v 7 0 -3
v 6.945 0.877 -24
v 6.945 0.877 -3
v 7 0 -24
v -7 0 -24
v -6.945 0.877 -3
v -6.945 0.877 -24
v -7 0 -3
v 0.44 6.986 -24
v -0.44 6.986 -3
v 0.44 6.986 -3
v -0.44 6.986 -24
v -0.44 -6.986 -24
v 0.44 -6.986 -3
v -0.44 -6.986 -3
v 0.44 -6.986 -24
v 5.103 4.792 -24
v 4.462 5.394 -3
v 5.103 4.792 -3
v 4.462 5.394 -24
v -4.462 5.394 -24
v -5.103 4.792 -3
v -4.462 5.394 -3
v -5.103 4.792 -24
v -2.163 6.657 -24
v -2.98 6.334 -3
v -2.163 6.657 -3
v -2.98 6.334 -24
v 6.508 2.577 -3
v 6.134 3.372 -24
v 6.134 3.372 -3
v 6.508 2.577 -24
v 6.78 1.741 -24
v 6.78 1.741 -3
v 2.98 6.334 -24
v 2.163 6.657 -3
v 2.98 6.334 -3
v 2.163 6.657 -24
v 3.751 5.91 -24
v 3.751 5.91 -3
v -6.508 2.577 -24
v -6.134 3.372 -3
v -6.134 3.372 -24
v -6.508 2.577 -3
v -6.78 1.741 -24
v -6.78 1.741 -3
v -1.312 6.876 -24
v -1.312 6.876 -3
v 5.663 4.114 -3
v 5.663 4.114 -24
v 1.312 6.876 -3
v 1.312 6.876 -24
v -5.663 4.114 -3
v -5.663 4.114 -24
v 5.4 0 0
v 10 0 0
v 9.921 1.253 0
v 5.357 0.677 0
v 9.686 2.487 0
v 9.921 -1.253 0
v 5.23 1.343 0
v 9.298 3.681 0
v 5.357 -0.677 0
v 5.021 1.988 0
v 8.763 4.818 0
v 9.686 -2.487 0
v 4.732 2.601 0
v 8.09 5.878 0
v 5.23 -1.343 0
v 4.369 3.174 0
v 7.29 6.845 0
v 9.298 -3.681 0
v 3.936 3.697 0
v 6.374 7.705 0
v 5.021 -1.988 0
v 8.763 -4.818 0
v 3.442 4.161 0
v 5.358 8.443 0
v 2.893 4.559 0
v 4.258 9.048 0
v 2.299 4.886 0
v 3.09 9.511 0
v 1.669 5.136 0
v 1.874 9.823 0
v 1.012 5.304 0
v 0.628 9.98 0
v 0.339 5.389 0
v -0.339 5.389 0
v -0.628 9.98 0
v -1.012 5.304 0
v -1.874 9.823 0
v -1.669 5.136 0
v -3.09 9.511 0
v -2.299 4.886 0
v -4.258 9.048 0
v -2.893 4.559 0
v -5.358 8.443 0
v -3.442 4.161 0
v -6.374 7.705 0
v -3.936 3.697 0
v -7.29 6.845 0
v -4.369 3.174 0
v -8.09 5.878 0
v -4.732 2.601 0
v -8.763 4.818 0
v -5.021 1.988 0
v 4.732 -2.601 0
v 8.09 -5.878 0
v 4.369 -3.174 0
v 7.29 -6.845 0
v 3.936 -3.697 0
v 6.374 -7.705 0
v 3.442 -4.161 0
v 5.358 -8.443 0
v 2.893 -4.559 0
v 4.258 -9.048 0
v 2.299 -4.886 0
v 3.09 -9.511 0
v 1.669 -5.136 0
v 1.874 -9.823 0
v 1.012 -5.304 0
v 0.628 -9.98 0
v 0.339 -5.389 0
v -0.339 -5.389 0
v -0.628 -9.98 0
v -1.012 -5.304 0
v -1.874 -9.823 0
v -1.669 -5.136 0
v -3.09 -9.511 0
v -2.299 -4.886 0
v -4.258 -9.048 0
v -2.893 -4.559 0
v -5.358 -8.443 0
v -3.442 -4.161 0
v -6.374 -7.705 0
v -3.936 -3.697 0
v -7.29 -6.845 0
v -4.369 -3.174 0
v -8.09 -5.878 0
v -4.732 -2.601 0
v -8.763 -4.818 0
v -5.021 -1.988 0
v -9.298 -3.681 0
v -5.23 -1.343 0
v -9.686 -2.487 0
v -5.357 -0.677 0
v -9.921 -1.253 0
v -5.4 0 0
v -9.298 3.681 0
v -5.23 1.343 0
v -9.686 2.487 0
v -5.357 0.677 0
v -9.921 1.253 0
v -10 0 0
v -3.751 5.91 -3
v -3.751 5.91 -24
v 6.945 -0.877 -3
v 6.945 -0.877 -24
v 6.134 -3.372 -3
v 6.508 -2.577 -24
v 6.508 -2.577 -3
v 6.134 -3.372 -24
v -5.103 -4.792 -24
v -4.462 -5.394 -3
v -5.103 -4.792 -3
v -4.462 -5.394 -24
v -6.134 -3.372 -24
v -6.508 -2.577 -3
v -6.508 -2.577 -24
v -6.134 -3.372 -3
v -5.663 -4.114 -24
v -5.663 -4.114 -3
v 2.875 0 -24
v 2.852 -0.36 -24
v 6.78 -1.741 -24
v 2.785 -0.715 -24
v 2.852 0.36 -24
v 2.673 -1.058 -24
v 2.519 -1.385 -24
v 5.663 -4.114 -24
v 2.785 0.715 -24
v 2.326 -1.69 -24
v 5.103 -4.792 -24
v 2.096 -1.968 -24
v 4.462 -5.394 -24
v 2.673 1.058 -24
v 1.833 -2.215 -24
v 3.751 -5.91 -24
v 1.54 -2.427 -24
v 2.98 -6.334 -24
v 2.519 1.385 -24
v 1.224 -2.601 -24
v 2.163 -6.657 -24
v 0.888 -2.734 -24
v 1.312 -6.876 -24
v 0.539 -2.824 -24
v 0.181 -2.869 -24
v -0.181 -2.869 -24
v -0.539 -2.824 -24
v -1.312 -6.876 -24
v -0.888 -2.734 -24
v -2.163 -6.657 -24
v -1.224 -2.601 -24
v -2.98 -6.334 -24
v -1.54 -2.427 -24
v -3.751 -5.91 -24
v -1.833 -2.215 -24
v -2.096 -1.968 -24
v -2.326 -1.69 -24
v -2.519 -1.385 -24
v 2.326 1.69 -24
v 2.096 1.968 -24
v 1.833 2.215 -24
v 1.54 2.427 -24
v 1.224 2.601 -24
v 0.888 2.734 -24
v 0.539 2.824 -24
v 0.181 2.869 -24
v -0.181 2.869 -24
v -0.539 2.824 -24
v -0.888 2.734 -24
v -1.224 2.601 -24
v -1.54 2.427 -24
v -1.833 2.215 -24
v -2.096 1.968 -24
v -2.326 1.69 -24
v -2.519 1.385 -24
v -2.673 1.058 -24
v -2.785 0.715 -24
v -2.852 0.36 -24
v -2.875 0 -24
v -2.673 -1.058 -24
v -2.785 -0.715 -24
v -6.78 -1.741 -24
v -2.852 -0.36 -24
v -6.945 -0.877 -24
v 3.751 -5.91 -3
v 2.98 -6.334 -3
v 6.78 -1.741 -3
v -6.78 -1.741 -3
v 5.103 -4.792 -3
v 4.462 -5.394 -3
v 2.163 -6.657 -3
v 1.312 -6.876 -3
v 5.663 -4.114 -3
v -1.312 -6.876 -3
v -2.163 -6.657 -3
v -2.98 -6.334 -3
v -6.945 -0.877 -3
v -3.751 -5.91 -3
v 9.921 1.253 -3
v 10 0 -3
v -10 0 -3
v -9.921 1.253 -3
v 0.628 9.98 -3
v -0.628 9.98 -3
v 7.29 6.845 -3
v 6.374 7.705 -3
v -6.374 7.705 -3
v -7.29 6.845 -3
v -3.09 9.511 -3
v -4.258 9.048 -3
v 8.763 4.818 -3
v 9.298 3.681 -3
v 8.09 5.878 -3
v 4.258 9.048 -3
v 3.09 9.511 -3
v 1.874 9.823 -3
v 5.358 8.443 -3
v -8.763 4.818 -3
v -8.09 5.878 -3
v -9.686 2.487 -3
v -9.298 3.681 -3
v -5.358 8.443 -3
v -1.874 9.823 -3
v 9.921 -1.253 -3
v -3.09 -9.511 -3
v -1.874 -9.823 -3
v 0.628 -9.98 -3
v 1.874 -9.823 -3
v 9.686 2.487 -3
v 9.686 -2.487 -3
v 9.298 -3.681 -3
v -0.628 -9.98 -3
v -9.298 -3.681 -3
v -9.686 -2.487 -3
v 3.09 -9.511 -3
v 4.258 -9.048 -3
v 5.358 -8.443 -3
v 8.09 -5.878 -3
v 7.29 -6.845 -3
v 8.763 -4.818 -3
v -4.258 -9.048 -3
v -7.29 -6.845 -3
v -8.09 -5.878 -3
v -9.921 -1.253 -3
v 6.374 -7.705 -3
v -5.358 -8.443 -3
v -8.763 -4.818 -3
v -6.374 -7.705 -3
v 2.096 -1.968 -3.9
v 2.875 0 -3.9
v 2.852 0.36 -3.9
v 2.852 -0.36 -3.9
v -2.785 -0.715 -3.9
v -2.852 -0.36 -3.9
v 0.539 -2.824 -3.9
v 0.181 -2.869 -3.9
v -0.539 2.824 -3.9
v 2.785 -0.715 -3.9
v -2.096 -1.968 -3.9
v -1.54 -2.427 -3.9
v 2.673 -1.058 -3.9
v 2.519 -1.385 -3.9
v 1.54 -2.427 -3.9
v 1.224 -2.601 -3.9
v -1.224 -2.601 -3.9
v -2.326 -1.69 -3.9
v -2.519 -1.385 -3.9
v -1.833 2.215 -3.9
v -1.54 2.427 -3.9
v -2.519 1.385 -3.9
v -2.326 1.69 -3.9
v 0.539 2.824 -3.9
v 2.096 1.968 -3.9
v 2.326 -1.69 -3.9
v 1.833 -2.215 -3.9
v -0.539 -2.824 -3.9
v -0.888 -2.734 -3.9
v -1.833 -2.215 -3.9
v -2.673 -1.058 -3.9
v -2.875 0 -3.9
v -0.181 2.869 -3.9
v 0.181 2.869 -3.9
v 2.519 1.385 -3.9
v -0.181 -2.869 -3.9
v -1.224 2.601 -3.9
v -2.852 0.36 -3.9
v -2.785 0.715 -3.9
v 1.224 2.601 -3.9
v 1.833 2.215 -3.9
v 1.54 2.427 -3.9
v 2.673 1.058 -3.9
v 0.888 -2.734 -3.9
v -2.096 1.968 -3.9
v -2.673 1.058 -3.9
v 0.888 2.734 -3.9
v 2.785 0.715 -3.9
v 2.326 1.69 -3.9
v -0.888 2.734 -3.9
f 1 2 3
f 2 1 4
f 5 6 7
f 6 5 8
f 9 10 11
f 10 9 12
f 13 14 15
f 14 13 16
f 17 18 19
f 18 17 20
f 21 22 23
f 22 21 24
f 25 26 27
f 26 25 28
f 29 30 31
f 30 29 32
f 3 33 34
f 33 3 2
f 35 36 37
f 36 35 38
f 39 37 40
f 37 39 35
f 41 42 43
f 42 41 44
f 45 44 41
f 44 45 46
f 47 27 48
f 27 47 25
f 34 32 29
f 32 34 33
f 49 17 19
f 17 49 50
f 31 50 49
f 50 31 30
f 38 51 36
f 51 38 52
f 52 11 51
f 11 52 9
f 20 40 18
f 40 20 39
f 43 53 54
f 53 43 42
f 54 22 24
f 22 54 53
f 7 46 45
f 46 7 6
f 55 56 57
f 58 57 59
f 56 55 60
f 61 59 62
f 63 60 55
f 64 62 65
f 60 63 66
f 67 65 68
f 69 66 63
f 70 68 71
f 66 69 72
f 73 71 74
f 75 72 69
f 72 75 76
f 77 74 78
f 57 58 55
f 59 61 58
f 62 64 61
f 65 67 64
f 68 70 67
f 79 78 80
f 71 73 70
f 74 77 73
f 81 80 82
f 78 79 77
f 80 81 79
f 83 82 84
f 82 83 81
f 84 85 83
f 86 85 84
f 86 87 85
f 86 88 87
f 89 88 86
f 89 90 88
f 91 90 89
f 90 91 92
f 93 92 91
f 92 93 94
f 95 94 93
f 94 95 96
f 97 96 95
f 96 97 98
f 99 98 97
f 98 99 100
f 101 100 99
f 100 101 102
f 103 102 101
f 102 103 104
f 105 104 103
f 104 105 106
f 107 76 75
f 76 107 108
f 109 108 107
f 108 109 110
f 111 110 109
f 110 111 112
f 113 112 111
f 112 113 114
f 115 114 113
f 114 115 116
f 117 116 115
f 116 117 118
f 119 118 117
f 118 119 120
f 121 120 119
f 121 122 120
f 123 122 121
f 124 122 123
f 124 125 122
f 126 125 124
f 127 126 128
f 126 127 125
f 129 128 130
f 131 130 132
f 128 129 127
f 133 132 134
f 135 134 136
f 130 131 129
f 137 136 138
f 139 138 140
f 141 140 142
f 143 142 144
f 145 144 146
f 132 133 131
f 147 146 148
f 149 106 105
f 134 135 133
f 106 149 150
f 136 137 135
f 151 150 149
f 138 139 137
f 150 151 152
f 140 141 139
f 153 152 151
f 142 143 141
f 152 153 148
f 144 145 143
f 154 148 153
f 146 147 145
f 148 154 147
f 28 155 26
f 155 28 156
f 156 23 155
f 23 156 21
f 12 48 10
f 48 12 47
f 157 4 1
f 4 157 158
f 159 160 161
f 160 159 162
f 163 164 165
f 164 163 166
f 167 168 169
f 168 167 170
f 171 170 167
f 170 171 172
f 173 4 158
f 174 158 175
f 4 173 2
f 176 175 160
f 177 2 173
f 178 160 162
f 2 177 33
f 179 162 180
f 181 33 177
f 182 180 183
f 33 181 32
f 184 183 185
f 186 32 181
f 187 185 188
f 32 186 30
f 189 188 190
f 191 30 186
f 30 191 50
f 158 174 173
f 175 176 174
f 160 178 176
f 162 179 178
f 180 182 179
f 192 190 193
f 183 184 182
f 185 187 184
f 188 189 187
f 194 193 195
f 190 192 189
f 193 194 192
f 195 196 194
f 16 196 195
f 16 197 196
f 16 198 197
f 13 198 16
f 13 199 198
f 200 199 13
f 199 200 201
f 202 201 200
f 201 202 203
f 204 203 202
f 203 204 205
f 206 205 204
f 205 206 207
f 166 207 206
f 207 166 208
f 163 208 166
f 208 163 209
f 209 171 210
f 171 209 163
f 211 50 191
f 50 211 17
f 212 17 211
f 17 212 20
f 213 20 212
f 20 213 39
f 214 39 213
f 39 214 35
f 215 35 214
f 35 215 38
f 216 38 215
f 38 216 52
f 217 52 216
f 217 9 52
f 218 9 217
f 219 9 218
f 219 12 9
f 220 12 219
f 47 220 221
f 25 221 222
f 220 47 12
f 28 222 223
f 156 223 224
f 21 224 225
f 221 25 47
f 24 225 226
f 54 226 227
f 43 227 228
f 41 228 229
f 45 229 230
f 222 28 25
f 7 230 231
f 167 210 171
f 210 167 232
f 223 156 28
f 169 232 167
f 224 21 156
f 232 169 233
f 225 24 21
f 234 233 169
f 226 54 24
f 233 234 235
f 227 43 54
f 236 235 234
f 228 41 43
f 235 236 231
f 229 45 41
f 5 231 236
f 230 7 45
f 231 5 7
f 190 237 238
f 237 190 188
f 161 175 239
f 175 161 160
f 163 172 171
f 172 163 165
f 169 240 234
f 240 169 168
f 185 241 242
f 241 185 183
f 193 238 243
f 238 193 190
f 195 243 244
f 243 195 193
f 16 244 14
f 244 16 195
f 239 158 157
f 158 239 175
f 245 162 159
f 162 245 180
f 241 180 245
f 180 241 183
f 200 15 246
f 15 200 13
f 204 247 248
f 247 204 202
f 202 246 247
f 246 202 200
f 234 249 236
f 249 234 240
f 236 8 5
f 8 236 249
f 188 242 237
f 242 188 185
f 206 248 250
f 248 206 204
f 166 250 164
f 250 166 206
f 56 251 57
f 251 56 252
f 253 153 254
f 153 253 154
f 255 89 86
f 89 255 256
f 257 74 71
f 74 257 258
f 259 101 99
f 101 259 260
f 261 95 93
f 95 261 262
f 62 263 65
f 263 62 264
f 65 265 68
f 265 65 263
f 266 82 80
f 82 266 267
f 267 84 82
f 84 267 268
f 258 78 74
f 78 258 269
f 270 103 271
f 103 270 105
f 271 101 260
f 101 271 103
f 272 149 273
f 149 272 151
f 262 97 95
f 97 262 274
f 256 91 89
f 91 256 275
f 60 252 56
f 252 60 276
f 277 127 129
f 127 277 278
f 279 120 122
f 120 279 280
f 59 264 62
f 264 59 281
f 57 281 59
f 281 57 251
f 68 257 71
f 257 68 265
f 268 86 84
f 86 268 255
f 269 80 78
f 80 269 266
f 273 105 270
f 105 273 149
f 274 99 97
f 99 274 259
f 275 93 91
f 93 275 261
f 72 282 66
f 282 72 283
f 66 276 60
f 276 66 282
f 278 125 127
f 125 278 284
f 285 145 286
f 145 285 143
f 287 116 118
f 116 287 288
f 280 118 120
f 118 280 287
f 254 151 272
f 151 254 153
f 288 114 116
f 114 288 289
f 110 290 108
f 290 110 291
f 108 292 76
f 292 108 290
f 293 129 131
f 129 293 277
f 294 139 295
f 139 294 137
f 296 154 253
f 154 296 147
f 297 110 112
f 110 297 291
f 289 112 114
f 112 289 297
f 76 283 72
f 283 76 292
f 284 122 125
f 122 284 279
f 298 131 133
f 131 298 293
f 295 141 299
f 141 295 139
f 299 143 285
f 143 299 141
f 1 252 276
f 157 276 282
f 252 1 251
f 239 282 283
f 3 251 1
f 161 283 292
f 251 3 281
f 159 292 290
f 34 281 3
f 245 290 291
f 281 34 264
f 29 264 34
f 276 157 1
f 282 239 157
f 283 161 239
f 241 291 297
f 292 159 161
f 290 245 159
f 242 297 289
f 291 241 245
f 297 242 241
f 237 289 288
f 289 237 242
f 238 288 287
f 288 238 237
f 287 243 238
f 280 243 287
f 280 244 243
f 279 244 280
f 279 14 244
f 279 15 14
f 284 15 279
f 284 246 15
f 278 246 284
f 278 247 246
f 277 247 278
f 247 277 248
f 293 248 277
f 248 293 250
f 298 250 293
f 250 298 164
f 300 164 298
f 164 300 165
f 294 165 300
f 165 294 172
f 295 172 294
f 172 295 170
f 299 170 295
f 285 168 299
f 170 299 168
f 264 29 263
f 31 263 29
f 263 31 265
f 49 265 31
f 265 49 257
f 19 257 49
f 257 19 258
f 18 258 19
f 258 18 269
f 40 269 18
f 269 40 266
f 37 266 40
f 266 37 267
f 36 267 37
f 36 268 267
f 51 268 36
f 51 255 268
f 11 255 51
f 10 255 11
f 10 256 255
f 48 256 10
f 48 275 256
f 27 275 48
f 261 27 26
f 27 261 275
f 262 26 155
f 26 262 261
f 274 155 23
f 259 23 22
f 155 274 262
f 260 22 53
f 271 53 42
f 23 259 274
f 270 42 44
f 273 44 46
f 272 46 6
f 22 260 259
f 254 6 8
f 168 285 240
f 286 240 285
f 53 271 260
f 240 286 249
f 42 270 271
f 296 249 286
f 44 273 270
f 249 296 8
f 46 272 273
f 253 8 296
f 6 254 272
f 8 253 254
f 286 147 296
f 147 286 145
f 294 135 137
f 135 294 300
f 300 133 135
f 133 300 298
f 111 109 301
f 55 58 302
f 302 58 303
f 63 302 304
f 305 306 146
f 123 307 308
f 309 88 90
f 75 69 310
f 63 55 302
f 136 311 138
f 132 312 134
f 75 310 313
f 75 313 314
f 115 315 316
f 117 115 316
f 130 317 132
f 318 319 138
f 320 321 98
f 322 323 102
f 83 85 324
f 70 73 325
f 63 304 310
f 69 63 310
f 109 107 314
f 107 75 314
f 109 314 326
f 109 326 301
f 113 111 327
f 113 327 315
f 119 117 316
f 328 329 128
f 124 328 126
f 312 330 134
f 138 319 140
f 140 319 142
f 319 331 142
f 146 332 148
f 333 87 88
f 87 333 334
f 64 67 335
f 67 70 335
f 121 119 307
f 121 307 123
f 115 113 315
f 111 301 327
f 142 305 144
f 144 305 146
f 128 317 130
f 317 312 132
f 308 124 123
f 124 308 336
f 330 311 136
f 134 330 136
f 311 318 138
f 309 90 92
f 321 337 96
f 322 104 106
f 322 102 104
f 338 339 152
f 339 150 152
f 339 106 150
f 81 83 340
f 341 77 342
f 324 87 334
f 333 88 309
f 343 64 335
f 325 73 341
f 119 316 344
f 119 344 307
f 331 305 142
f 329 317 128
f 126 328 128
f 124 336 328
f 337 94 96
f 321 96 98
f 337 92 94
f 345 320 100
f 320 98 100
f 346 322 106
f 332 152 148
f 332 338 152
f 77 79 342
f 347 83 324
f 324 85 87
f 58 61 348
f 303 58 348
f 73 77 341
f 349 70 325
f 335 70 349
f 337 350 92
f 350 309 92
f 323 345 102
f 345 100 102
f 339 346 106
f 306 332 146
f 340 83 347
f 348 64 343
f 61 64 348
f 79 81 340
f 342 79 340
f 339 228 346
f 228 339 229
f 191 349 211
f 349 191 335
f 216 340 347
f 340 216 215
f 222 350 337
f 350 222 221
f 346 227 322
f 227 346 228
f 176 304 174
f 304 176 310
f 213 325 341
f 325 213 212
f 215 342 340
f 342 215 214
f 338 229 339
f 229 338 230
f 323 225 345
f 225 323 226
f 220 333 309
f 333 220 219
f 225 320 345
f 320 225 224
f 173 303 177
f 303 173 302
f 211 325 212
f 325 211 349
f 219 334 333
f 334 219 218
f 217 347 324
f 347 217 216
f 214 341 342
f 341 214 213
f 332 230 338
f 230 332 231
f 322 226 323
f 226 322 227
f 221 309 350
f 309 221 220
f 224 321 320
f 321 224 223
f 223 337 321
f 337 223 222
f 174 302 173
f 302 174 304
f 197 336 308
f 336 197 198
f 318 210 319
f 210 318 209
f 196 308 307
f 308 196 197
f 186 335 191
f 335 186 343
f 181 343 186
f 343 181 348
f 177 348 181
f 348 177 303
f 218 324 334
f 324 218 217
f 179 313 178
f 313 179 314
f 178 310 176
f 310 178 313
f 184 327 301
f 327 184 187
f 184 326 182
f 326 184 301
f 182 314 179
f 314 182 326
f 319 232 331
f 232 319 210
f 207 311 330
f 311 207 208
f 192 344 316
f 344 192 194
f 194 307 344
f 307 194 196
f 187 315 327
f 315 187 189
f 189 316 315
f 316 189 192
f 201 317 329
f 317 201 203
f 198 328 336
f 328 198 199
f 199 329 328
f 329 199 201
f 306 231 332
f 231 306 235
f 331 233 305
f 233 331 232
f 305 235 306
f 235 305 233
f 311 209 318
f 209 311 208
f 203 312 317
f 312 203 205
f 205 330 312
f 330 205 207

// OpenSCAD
$fn = 50;


difference() {
	union() {
		translate(v = [0, 0, -24.0000000000]) {
			cylinder(h = 24, r = 7.0000000000);
		}
		translate(v = [0, 0, -3.0000000000]) {
			cylinder(h = 3, r = 10.0000000000);
		}
	}
	union() {
		translate(v = [0, 0, 0]) {
			rotate(a = [0, 0, 0]) {
				difference() {
					union() {
						#translate(v = [0, 0, -24.0000000000]) {
							cylinder(h = 24, r = 2.6000000000);
						}
						#translate(v = [0, 0, -3.9000000000]) {
							cylinder(h = 3.9000000000, r = 7.0000000000, r1 = 2.8750000000, r2 = 5.4000000000);
						}
						#translate(v = [0, 0, -24.0000000000]) {
							cylinder(h = 24, r = 2.8750000000);
						}
						#translate(v = [0, 0, -24.0000000000]) {
							cylinder(h = 24, r = 2.6000000000);
						}
					}
					union();
				}
			}
		}
	}
}
